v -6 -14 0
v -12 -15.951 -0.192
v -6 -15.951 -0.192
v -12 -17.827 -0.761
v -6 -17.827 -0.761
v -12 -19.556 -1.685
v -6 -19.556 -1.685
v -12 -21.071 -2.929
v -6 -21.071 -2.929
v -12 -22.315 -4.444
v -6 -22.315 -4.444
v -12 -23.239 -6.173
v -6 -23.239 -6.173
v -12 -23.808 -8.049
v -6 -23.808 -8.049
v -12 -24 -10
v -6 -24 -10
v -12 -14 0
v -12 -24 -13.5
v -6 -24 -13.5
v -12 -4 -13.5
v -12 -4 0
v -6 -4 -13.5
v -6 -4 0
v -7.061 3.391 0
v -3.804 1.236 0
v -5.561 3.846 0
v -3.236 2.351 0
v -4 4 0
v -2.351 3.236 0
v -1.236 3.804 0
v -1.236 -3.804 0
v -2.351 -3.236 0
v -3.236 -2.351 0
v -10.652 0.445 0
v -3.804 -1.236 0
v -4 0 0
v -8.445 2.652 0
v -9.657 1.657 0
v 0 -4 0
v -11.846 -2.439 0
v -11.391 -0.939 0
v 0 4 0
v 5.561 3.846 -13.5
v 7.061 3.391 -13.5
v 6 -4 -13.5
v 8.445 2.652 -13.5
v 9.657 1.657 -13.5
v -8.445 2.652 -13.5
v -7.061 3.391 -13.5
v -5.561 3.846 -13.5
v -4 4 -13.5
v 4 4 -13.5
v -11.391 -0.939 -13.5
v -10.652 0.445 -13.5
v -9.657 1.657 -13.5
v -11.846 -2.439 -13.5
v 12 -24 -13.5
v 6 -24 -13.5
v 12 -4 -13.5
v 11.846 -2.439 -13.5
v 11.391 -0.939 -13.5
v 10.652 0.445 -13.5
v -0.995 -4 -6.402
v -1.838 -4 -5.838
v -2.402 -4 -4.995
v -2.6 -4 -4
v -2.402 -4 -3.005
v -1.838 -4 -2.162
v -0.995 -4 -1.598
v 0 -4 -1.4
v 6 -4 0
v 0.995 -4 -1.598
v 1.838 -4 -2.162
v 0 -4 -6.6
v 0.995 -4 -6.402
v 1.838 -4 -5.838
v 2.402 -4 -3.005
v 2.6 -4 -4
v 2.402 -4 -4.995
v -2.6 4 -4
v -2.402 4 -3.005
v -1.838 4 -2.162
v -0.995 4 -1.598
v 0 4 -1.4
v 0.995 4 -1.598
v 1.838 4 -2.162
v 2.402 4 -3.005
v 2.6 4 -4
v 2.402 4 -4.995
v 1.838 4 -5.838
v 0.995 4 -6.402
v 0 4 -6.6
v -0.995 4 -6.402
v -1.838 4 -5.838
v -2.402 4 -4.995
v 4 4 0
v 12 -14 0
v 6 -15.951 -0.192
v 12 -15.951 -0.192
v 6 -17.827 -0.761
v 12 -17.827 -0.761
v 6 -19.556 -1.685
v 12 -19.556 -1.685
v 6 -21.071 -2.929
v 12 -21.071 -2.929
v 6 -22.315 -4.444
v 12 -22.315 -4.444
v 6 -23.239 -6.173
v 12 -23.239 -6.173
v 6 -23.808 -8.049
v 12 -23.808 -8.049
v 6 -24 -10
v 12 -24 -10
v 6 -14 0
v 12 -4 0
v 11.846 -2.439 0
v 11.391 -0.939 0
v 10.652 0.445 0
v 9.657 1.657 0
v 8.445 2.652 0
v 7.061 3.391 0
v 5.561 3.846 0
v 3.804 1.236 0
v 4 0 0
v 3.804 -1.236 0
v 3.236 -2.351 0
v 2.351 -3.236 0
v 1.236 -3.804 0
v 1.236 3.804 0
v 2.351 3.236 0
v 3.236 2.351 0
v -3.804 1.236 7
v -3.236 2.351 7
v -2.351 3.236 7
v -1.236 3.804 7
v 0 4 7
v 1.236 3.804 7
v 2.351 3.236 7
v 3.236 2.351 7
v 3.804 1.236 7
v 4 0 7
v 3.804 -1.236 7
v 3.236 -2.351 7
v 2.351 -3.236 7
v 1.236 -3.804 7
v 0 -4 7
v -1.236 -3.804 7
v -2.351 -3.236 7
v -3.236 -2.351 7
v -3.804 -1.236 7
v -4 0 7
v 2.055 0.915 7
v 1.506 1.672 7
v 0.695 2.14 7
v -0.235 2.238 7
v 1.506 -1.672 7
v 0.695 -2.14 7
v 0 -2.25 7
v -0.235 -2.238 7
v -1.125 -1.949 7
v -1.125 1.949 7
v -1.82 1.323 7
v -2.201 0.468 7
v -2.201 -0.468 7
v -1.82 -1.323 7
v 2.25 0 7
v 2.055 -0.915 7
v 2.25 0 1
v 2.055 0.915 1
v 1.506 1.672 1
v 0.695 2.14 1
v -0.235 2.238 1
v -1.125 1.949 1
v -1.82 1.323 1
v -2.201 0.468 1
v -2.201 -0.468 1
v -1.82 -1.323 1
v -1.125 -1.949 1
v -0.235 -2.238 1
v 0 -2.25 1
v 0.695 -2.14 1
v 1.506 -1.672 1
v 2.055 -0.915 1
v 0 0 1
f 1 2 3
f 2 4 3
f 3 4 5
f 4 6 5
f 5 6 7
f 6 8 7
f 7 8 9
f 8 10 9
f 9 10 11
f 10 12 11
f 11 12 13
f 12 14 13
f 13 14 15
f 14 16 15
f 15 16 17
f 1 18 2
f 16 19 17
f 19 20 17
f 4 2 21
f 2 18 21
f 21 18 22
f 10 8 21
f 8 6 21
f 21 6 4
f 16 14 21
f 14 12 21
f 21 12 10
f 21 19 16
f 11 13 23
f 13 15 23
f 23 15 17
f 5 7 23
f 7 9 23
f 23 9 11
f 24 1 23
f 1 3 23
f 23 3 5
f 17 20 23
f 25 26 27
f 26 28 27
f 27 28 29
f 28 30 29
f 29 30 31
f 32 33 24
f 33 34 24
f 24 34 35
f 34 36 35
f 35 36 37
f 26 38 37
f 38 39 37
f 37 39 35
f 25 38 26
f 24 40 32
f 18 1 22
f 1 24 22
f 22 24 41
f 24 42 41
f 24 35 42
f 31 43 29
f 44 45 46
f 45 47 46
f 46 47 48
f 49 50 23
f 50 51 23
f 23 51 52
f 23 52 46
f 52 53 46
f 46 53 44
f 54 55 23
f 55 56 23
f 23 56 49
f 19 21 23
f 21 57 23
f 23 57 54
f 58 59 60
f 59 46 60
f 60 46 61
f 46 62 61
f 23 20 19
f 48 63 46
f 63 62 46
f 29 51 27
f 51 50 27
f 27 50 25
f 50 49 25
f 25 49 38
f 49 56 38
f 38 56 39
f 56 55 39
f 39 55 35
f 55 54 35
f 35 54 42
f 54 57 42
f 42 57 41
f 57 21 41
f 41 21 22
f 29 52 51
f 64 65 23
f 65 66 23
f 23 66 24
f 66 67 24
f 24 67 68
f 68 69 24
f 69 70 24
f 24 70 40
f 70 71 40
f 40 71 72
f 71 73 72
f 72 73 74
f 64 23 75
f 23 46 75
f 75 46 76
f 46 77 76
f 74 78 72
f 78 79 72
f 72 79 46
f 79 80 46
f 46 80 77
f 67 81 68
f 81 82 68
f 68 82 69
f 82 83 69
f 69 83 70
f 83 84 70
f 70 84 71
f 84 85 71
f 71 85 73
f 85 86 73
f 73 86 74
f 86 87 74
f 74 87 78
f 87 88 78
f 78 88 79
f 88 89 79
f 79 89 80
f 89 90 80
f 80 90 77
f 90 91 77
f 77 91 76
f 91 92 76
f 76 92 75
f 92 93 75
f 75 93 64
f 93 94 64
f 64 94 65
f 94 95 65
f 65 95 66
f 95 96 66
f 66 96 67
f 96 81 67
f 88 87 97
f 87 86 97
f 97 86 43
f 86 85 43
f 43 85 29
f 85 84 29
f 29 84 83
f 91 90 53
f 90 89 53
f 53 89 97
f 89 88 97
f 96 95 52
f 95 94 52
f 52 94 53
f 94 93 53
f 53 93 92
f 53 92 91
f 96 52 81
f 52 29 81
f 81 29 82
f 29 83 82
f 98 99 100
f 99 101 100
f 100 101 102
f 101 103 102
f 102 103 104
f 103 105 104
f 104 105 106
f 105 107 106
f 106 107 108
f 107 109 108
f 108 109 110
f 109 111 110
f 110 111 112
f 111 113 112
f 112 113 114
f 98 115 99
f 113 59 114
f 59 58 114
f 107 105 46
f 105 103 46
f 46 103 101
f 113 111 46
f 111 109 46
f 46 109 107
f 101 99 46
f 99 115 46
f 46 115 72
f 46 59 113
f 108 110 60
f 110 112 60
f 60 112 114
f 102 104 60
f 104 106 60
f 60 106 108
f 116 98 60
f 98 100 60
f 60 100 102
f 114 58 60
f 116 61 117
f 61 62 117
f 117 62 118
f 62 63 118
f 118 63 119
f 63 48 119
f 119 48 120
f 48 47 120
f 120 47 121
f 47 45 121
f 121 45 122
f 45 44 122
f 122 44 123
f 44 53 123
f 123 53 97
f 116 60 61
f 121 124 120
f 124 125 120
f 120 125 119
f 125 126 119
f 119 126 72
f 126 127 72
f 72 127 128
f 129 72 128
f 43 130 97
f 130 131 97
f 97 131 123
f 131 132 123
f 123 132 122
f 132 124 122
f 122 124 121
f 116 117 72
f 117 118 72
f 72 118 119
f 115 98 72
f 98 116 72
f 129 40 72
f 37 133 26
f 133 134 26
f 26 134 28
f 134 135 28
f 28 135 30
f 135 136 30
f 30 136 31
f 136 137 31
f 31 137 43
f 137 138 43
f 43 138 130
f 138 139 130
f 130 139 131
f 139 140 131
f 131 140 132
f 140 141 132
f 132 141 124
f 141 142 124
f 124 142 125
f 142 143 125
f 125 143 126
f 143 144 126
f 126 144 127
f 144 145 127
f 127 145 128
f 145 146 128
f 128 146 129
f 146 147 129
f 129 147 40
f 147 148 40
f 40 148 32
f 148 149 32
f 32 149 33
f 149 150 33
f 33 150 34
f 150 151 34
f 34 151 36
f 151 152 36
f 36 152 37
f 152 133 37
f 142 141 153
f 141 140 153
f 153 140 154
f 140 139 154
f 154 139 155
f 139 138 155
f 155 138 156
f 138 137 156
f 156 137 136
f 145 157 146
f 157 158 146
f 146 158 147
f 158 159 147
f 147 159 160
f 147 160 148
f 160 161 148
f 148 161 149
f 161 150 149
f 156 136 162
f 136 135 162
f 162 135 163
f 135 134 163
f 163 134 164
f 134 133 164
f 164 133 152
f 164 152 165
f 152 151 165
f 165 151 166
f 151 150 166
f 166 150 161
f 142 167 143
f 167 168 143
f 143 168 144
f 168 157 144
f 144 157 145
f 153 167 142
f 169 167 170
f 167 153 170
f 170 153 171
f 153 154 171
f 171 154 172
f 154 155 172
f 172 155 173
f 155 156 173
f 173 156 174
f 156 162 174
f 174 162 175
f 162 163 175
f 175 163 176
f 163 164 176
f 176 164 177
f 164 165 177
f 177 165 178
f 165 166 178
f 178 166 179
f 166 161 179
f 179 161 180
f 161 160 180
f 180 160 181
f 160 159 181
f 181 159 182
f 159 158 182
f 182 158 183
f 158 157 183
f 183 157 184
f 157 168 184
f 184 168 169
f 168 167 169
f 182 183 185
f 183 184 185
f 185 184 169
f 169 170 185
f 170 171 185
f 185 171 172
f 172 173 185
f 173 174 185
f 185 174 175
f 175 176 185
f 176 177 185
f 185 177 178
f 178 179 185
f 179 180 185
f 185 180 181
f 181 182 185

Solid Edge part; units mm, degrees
sketch "Sketch1" plane through (0, 0, 0) normal (0, 0, 1) x (1, 0, 0)
  circle A0 centre (0, 0) radius 4
  dimension "D1" = 8
extrude "Protrusion1" add sketch "Sketch1" along normal blind 7
sketch "Sketch2" plane through (0, 0, 0) normal (0, 0, -1) x (-1, 0, 0)
  line L0 (-4, 4) -> (4, 4)
  line L1 (4, 4) -> (4, -4)
  line L2 (4, -4) -> (-4, -4)
  line L3 (-4, -4) -> (-4, 4)
extrude "ExtrudedProtrusion_2" add sketch "Sketch2" along normal blind 13.5
sketch "Sketch3" plane through (0, 0, -13.5) normal (0, 0, -1) x (-1, 0, 0)
  arc A0 (-4, 4) -> (-12, -4) centre (-4, -4) ccw
  line L0 (-12, -4) -> (-12, -24)
  line L1 (-12, -24) -> (-6, -24)
  line L2 (-6, -24) -> (-6, -4)
  line L3 (-6, -4) -> (6, -4)
  line L4 (6, -24) -> (6, -4)
  line L5 (12, -24) -> (6, -24)
  line L6 (12, -4) -> (12, -24)
  arc A1 (4, 4) -> (12, -4) centre (4, -4) cw
  line L7 (-4, 4) -> (4, 4)
  dimension "D1" = 20
  dimension "D2" = 12
extrude "Protrusion2" add sketch "Sketch3" against normal up to vertex (13.5 mm away)
sketch "Sketch4" plane through (0, 4, -1.5) normal (0, 1, 0) x (0, 0, -1)
  circle A0 centre (2.5, 0) radius 2.6
  dimension "D1" = 5.2
  dimension "D2" = 9.5
extrude "Cutout1" cut sketch "Sketch4" against normal through all
fillet "Round_3" radius 10 2 edges at (-9, -24, 0) (9, -24, 0)
sketch "Sketch5" plane through (0, 0, 7) normal (0, 0, 1) x (0, -1, 0)
  circle A0 centre (0, 0) radius 2.25
  dimension "D1" = 4.5
extrude "ExtrudedCutout_2" cut sketch "Sketch5" against normal blind 6
